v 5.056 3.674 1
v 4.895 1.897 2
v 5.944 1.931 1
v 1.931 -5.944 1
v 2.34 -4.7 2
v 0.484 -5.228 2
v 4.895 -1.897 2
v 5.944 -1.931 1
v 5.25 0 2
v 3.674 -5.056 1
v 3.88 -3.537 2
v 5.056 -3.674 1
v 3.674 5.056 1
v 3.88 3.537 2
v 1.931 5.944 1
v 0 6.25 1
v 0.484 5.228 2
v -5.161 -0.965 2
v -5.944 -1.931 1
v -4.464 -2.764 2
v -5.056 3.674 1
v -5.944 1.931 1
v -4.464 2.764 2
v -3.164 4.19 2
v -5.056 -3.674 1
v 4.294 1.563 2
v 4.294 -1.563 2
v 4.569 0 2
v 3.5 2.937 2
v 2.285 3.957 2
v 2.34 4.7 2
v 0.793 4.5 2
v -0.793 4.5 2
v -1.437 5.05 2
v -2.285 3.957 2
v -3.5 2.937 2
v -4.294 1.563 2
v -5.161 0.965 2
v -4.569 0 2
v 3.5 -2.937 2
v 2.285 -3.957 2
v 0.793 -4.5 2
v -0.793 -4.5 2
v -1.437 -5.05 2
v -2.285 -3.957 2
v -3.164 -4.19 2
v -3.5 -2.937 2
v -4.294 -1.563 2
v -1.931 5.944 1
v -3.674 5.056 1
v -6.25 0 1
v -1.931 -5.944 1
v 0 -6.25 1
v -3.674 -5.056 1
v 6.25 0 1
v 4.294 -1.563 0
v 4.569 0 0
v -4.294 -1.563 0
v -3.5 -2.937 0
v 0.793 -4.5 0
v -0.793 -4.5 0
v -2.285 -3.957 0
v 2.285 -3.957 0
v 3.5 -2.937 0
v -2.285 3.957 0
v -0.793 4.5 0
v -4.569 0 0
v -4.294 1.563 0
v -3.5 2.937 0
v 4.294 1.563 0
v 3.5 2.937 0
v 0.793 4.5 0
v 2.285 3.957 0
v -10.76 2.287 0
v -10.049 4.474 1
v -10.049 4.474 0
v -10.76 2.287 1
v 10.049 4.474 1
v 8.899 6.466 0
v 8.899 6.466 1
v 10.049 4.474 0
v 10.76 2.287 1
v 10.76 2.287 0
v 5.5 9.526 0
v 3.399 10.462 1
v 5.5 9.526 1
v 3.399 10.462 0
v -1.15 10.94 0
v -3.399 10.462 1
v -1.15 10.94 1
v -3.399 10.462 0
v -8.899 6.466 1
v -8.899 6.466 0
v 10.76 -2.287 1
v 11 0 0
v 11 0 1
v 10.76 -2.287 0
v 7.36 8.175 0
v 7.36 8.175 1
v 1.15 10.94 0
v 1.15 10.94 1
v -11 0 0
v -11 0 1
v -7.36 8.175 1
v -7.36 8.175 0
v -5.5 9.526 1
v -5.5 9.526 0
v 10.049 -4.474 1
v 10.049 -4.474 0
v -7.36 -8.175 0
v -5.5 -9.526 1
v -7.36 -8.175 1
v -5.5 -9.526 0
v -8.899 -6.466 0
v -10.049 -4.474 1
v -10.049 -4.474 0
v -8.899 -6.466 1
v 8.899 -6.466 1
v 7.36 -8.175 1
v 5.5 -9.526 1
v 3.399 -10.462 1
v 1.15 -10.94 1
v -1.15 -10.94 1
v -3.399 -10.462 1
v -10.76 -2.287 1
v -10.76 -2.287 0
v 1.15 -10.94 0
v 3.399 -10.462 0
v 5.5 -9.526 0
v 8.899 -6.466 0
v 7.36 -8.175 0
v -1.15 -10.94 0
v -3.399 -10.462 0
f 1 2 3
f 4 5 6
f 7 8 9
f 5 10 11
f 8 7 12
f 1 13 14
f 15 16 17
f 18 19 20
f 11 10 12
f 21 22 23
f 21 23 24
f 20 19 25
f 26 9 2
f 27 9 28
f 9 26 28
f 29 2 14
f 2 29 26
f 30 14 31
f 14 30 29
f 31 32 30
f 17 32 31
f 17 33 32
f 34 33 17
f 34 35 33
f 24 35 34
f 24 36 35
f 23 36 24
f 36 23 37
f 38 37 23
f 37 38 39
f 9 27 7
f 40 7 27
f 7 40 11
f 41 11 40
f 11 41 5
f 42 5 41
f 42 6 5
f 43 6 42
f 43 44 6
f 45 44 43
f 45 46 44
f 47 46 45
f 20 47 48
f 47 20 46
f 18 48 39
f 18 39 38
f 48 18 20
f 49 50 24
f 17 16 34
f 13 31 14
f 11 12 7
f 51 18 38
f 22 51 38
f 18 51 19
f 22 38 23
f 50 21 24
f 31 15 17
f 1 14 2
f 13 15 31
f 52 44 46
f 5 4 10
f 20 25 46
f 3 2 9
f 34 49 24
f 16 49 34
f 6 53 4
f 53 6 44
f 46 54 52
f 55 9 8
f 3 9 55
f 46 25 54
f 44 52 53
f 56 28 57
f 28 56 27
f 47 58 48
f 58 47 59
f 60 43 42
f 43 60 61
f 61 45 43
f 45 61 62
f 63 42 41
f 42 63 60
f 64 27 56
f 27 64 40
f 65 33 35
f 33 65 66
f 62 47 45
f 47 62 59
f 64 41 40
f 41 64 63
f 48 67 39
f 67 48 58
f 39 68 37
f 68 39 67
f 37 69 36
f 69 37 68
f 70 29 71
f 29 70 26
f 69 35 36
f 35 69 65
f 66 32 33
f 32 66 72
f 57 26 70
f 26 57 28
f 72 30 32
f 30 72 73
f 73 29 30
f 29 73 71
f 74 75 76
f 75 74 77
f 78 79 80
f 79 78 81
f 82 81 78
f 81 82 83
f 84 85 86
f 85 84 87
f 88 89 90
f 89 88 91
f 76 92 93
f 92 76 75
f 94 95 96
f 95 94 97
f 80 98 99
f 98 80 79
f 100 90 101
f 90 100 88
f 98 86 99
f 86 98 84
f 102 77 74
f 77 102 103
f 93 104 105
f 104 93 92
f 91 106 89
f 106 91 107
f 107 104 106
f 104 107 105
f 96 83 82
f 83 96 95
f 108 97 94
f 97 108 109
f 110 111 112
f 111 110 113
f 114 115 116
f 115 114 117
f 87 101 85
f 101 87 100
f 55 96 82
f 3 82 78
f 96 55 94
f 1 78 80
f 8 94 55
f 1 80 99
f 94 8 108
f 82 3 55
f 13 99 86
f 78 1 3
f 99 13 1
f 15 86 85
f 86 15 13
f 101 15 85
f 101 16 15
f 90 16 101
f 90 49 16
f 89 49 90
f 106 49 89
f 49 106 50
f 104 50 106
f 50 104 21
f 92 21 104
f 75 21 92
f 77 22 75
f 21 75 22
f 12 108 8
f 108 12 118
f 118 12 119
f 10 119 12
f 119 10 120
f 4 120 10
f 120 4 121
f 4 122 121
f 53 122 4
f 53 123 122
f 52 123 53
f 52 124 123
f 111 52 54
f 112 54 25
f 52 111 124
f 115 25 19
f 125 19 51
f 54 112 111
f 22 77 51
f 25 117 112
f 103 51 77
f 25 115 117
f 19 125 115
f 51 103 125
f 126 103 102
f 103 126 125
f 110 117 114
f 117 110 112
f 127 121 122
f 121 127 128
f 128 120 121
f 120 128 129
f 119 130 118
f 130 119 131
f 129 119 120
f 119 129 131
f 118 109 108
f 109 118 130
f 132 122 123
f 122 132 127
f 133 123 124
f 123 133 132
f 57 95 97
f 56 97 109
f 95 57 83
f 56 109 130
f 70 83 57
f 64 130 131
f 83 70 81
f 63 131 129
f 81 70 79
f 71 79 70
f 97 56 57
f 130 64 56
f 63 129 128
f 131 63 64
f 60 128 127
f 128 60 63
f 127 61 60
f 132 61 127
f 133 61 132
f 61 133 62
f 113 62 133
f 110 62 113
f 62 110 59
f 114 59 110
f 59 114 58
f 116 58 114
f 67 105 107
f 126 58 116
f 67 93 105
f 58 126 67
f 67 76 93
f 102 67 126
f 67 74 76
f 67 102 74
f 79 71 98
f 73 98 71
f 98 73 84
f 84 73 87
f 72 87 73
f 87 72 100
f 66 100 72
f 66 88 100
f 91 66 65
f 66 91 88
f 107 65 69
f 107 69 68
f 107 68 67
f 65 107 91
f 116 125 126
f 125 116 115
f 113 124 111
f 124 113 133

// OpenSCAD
/*
 * Distance holder for the bearings in my bowden extruder
 */

//thickness
$t=1;
$curved=true;

module polyhole( d, h ) {
    n = max( round( 2 * d ), 3 );
    rotate( [0, 0, 180] ) cylinder( h = h, r = ( d / 2 ) / cos( 180 / n ), $fn = n );
}

module ring($od,$id,$h) {
    difference() {
        cylinder(d=$od,h=$h);
        translate([0,0,- 0.1]) {
            polyhole($id,$h + 0.2);
        }
    }
}

module distance_holder($od0,$od1,$id0,$thick=$t) {
    if ($curved) {
        difference() {
            hull () {
                translate([0,0,$thick]) 
                    ring($od1,$id0,$thick);
                translate([0,0,$thick-0.1]) {
                    ring($od1+2,$id0,0.1);
                }
            }
            translate([0,0,-0.1]) 
                polyhole(h=2*$thick+0.2, d=$id0);
        }
    } else {
        translate([0,0,$thick]) 
            ring($od1,$id0,$thick);
   }
    ring($od0,$id0,$thick);
}

//distance_holder(22,17.5,14,1); 

distance_holder(22,10.5,9,1); 
